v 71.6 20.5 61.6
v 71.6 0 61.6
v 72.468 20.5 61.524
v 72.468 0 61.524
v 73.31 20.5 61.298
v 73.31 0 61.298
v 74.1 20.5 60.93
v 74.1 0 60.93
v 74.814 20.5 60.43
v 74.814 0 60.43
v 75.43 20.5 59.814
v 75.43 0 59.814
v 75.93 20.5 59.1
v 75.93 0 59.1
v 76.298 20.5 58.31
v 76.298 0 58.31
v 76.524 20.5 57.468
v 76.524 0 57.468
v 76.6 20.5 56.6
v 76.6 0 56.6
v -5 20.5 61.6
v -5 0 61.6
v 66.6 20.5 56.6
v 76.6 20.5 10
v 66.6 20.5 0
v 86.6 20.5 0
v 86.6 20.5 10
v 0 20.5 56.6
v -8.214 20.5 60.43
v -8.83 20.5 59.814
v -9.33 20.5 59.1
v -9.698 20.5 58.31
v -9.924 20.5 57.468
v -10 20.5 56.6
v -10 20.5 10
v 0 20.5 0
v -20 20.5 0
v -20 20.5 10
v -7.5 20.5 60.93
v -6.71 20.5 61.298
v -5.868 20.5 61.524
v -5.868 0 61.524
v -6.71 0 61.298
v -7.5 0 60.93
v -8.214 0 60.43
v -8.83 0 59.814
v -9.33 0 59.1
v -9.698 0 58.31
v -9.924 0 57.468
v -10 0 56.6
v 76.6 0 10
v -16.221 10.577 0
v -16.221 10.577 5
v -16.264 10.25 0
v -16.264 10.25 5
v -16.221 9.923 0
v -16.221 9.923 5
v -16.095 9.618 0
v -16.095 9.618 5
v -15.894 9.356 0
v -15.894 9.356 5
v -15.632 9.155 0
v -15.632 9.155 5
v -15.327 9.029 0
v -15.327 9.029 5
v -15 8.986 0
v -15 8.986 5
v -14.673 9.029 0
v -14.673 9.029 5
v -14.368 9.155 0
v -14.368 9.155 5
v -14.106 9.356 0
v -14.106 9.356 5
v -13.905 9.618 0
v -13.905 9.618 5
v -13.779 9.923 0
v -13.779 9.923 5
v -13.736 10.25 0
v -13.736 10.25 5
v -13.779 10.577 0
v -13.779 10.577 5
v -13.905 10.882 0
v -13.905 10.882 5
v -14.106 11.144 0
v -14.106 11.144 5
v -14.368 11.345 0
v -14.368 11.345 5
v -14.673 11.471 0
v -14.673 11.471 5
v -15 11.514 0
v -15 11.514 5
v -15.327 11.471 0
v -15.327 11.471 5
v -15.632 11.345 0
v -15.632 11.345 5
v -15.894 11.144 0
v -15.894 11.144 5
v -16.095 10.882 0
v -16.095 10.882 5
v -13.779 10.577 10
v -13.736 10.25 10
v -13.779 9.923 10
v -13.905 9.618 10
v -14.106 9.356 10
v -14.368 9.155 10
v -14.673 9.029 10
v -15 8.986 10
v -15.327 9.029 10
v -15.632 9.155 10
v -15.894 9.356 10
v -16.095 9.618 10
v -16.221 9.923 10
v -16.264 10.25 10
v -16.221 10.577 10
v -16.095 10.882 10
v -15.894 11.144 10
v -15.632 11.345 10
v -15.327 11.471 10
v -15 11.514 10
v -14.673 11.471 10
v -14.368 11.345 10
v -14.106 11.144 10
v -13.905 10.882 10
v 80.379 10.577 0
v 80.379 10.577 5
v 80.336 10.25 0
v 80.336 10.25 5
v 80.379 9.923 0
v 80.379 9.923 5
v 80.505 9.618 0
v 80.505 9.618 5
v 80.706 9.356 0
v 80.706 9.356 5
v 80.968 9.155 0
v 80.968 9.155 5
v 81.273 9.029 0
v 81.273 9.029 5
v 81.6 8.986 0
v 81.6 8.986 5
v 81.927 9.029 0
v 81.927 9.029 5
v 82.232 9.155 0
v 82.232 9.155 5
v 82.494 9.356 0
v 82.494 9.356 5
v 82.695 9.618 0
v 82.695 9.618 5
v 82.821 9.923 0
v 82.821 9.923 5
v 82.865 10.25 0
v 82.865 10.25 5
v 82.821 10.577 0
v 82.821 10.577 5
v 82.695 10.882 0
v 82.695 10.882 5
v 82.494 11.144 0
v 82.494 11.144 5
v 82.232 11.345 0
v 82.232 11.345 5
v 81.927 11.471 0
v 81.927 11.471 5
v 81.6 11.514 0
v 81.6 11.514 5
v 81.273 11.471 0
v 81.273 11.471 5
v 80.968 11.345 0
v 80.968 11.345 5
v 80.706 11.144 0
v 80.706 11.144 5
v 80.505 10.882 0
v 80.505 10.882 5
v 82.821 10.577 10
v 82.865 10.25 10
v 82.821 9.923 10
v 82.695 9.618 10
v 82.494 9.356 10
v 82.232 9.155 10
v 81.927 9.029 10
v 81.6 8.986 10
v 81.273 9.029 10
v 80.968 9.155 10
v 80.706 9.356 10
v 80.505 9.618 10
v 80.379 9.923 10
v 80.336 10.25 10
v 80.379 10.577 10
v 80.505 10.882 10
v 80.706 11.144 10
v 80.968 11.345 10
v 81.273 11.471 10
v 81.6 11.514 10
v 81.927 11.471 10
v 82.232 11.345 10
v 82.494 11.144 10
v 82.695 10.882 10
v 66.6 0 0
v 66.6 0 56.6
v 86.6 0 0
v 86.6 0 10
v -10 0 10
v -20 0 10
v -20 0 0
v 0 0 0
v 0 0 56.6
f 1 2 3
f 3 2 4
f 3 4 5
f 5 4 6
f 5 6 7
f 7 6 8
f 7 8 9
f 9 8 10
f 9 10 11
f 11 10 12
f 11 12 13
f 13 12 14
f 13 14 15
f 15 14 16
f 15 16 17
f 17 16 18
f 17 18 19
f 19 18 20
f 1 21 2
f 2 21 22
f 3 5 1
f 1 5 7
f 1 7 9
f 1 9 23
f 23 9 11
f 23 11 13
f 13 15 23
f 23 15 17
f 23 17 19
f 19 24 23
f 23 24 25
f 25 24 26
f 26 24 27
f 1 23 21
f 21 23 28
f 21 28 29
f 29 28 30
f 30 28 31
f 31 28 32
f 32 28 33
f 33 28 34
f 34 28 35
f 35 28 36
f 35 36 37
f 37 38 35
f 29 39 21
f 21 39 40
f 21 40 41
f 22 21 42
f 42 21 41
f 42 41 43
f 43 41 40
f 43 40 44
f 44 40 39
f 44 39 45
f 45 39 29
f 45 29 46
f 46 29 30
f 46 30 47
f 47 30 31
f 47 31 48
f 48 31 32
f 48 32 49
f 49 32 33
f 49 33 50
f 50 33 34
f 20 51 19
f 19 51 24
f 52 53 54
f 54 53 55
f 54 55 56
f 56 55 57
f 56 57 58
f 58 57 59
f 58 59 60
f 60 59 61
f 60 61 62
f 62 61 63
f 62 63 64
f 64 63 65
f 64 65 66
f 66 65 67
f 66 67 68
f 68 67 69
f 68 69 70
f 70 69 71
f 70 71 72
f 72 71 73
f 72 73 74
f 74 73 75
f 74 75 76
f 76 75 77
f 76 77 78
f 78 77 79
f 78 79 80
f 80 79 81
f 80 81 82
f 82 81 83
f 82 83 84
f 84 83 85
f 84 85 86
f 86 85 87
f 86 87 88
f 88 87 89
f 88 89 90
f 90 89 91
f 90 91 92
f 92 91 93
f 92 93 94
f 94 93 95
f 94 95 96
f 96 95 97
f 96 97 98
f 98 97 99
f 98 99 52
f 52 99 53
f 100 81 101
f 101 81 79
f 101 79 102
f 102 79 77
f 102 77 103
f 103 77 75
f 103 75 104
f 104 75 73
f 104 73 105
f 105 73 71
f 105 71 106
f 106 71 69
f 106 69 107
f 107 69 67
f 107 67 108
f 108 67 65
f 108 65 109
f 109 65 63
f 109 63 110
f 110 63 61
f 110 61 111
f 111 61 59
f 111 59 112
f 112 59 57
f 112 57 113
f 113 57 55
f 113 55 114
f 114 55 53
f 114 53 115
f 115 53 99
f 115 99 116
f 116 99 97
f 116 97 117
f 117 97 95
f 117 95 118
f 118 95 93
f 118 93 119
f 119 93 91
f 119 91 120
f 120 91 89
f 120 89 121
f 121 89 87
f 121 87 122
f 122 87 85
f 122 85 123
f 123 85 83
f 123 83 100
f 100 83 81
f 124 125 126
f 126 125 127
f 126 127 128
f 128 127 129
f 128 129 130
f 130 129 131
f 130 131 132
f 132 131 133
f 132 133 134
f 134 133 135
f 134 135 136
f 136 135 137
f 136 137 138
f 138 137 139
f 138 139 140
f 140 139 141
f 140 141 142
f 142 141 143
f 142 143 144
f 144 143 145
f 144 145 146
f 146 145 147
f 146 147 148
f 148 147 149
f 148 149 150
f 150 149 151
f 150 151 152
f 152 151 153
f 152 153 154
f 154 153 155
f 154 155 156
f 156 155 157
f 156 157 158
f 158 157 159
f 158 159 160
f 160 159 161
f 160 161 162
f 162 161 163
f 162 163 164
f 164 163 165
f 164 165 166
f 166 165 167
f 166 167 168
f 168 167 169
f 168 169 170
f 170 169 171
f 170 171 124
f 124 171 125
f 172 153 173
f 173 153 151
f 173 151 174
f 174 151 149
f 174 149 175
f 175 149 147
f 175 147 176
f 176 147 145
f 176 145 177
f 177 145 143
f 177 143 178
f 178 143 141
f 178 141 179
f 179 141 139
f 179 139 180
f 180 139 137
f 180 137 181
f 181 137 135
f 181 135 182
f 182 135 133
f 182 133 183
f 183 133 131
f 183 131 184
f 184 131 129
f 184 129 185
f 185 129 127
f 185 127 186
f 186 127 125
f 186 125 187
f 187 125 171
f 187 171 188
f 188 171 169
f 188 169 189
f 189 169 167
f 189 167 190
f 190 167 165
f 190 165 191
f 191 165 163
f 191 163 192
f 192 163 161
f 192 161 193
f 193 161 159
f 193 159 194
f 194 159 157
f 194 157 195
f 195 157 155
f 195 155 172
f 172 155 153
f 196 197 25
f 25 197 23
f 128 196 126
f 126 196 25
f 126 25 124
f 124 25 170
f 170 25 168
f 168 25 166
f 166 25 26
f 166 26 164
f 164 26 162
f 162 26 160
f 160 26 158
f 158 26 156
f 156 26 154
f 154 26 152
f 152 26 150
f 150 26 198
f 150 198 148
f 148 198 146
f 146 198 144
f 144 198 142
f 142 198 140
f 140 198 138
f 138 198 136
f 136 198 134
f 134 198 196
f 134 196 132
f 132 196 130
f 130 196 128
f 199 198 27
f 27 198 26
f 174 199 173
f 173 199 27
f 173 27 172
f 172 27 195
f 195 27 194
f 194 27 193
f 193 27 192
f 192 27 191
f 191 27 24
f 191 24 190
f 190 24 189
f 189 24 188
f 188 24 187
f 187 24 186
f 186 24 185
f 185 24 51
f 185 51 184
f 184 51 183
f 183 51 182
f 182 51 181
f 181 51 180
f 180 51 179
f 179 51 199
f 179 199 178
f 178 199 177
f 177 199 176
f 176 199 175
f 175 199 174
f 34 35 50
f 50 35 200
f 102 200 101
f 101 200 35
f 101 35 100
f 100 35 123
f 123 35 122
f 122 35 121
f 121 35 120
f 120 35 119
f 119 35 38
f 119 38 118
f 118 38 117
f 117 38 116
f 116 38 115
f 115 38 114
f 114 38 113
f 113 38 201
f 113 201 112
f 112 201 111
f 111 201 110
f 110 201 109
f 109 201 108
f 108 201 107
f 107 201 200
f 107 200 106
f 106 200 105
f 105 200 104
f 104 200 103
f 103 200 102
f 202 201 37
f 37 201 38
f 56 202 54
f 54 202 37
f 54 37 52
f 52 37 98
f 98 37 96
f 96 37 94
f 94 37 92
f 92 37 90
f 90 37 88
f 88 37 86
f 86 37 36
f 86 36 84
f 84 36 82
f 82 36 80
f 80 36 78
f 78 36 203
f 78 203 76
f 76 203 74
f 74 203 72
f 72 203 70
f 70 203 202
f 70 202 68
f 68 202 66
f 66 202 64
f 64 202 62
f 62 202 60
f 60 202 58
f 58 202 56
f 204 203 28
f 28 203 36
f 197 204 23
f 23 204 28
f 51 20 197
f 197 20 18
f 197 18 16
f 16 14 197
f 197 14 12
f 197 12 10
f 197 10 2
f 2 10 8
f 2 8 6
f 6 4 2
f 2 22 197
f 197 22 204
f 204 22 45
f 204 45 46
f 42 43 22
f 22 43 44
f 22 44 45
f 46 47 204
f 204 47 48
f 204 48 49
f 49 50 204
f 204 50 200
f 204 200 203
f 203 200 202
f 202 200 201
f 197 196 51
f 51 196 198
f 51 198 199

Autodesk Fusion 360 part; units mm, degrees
sketch "Sketch1" plane through (0, 0, 0) normal (0, 1, 0) x (1, 0, 0)
  line L0 (0, 0) -> (66.6, 0)
  line L1 (66.6, 0) -> (66.6, -56.6)
  line L2 (66.6, -56.6) -> (0, -56.6)
  line L3 (0, -56.6) -> (0, 0)
  line L4 (0, 0) -> (-20, 0)
  line L5 (-20, 0) -> (-20, -10)
  line L6 (-20, -10) -> (-10, -10)
  line L7 (0, -10) -> (0, 0)
  line L8 (-10, -10) -> (-10, -66.6)
  line L9 (-10, -66.6) -> (0, -66.6)
  line L10 (0, -56.6) -> (0, -10)
  line L11 (0, -66.6) -> (66.6, -66.6)
  line L12 (66.6, -56.6) -> (0, -56.6)
  line L13 (66.6, -66.6) -> (76.6, -66.6)
  line L14 (76.6, -66.6) -> (76.6, -10)
  line L15 (76.6, 0) -> (66.6, 0)
  line L16 (66.6, 0) -> (66.6, -56.6)
  line L17 (66.6, 0) -> (86.6, 0)
  line L18 (86.6, 0) -> (86.6, -10)
  line L19 (86.6, -10) -> (76.6, -10)
  line L20 (66.6, -10) -> (66.6, 0)
  dimension "d19" = 66.6
  dimension "d20" = 56.6
  dimension "d21" = 20
  dimension "d22" = 10
  dimension "d23" = 10
  dimension "d24" = 56.6
  dimension "d25" = 10
  dimension "d26" = 20
  dimension "d27" = 10
extrude "Extrude2" add sketch "Sketch1" along normal blind 20.5 contours L1 L2 L3 L4 L5 L6 L7 L8 L9 L10 L11 L12 L13 L14 L15 L16 L17 L18 L19 L20
sketch "Sketch4" plane through (0, 0, 10) normal (0, 0, 1) x (-1, 0, 0)
  line L0 (20, 0) -> (10, 0)
  line L1 (10, 0) -> (10, -20.5)
  line L2 (10, -20.5) -> (20, -20.5)
  line L3 (20, -20.5) -> (20, 0)
  circle A0 centre (15, -10.25) radius 1.5
  dimension "d32" = 3
sketch "Sketch5" plane through (0, 0, 10) normal (0, 0, 1) x (-1, 0, 0)
  line L0 (-76.6, 0) -> (-86.6, 0)
  line L1 (-86.6, 0) -> (-86.6, -20.5)
  line L2 (-86.6, -20.5) -> (-76.6, -20.5)
  line L3 (-76.6, -20.5) -> (-76.6, 0)
  circle A0 centre (-81.6, -10.25) radius 1.5
  dimension "d33" = 3
hole "Hole2" at (-15, 10.25, 10) at (81.6, 10.25, 10) direction (0, 0, -1) diameter 2.529 depth 15 tip angle 118
sketch "Sketch6" plane through (0, 0, 0) normal (0, 0, -1) x (1, 0, 0)
  circle A0 centre (-15, -10.25) radius 1.2645
  line L0 (0, 0) -> (-20, 0)
  line L1 (-20, 0) -> (-20, -20.5)
  line L2 (-20, -20.5) -> (0, -20.5)
  line L3 (0, -20.5) -> (0, 0)
  line L4 (-20, 0) -> (0, 0)
  line L5 (0, 0) -> (0, -20.5)
  line L6 (0, -20.5) -> (-20, -20.5)
  line L7 (-20, -20.5) -> (-20, 0)
  line L8 (-15, -10.25) -> (-20, -10.25)
  line L9 (-15, -10.25) -> (-15, 0)
extrude "Extrude3" cut 1 faces at (18.8667, 6.8333, 66.6) along direction (0, 0, -1) blind 5
fillet "Fillet3" radius 5 2 edges at (-10, 10.25, 61.6) (76.6, 10.25, 61.6)
